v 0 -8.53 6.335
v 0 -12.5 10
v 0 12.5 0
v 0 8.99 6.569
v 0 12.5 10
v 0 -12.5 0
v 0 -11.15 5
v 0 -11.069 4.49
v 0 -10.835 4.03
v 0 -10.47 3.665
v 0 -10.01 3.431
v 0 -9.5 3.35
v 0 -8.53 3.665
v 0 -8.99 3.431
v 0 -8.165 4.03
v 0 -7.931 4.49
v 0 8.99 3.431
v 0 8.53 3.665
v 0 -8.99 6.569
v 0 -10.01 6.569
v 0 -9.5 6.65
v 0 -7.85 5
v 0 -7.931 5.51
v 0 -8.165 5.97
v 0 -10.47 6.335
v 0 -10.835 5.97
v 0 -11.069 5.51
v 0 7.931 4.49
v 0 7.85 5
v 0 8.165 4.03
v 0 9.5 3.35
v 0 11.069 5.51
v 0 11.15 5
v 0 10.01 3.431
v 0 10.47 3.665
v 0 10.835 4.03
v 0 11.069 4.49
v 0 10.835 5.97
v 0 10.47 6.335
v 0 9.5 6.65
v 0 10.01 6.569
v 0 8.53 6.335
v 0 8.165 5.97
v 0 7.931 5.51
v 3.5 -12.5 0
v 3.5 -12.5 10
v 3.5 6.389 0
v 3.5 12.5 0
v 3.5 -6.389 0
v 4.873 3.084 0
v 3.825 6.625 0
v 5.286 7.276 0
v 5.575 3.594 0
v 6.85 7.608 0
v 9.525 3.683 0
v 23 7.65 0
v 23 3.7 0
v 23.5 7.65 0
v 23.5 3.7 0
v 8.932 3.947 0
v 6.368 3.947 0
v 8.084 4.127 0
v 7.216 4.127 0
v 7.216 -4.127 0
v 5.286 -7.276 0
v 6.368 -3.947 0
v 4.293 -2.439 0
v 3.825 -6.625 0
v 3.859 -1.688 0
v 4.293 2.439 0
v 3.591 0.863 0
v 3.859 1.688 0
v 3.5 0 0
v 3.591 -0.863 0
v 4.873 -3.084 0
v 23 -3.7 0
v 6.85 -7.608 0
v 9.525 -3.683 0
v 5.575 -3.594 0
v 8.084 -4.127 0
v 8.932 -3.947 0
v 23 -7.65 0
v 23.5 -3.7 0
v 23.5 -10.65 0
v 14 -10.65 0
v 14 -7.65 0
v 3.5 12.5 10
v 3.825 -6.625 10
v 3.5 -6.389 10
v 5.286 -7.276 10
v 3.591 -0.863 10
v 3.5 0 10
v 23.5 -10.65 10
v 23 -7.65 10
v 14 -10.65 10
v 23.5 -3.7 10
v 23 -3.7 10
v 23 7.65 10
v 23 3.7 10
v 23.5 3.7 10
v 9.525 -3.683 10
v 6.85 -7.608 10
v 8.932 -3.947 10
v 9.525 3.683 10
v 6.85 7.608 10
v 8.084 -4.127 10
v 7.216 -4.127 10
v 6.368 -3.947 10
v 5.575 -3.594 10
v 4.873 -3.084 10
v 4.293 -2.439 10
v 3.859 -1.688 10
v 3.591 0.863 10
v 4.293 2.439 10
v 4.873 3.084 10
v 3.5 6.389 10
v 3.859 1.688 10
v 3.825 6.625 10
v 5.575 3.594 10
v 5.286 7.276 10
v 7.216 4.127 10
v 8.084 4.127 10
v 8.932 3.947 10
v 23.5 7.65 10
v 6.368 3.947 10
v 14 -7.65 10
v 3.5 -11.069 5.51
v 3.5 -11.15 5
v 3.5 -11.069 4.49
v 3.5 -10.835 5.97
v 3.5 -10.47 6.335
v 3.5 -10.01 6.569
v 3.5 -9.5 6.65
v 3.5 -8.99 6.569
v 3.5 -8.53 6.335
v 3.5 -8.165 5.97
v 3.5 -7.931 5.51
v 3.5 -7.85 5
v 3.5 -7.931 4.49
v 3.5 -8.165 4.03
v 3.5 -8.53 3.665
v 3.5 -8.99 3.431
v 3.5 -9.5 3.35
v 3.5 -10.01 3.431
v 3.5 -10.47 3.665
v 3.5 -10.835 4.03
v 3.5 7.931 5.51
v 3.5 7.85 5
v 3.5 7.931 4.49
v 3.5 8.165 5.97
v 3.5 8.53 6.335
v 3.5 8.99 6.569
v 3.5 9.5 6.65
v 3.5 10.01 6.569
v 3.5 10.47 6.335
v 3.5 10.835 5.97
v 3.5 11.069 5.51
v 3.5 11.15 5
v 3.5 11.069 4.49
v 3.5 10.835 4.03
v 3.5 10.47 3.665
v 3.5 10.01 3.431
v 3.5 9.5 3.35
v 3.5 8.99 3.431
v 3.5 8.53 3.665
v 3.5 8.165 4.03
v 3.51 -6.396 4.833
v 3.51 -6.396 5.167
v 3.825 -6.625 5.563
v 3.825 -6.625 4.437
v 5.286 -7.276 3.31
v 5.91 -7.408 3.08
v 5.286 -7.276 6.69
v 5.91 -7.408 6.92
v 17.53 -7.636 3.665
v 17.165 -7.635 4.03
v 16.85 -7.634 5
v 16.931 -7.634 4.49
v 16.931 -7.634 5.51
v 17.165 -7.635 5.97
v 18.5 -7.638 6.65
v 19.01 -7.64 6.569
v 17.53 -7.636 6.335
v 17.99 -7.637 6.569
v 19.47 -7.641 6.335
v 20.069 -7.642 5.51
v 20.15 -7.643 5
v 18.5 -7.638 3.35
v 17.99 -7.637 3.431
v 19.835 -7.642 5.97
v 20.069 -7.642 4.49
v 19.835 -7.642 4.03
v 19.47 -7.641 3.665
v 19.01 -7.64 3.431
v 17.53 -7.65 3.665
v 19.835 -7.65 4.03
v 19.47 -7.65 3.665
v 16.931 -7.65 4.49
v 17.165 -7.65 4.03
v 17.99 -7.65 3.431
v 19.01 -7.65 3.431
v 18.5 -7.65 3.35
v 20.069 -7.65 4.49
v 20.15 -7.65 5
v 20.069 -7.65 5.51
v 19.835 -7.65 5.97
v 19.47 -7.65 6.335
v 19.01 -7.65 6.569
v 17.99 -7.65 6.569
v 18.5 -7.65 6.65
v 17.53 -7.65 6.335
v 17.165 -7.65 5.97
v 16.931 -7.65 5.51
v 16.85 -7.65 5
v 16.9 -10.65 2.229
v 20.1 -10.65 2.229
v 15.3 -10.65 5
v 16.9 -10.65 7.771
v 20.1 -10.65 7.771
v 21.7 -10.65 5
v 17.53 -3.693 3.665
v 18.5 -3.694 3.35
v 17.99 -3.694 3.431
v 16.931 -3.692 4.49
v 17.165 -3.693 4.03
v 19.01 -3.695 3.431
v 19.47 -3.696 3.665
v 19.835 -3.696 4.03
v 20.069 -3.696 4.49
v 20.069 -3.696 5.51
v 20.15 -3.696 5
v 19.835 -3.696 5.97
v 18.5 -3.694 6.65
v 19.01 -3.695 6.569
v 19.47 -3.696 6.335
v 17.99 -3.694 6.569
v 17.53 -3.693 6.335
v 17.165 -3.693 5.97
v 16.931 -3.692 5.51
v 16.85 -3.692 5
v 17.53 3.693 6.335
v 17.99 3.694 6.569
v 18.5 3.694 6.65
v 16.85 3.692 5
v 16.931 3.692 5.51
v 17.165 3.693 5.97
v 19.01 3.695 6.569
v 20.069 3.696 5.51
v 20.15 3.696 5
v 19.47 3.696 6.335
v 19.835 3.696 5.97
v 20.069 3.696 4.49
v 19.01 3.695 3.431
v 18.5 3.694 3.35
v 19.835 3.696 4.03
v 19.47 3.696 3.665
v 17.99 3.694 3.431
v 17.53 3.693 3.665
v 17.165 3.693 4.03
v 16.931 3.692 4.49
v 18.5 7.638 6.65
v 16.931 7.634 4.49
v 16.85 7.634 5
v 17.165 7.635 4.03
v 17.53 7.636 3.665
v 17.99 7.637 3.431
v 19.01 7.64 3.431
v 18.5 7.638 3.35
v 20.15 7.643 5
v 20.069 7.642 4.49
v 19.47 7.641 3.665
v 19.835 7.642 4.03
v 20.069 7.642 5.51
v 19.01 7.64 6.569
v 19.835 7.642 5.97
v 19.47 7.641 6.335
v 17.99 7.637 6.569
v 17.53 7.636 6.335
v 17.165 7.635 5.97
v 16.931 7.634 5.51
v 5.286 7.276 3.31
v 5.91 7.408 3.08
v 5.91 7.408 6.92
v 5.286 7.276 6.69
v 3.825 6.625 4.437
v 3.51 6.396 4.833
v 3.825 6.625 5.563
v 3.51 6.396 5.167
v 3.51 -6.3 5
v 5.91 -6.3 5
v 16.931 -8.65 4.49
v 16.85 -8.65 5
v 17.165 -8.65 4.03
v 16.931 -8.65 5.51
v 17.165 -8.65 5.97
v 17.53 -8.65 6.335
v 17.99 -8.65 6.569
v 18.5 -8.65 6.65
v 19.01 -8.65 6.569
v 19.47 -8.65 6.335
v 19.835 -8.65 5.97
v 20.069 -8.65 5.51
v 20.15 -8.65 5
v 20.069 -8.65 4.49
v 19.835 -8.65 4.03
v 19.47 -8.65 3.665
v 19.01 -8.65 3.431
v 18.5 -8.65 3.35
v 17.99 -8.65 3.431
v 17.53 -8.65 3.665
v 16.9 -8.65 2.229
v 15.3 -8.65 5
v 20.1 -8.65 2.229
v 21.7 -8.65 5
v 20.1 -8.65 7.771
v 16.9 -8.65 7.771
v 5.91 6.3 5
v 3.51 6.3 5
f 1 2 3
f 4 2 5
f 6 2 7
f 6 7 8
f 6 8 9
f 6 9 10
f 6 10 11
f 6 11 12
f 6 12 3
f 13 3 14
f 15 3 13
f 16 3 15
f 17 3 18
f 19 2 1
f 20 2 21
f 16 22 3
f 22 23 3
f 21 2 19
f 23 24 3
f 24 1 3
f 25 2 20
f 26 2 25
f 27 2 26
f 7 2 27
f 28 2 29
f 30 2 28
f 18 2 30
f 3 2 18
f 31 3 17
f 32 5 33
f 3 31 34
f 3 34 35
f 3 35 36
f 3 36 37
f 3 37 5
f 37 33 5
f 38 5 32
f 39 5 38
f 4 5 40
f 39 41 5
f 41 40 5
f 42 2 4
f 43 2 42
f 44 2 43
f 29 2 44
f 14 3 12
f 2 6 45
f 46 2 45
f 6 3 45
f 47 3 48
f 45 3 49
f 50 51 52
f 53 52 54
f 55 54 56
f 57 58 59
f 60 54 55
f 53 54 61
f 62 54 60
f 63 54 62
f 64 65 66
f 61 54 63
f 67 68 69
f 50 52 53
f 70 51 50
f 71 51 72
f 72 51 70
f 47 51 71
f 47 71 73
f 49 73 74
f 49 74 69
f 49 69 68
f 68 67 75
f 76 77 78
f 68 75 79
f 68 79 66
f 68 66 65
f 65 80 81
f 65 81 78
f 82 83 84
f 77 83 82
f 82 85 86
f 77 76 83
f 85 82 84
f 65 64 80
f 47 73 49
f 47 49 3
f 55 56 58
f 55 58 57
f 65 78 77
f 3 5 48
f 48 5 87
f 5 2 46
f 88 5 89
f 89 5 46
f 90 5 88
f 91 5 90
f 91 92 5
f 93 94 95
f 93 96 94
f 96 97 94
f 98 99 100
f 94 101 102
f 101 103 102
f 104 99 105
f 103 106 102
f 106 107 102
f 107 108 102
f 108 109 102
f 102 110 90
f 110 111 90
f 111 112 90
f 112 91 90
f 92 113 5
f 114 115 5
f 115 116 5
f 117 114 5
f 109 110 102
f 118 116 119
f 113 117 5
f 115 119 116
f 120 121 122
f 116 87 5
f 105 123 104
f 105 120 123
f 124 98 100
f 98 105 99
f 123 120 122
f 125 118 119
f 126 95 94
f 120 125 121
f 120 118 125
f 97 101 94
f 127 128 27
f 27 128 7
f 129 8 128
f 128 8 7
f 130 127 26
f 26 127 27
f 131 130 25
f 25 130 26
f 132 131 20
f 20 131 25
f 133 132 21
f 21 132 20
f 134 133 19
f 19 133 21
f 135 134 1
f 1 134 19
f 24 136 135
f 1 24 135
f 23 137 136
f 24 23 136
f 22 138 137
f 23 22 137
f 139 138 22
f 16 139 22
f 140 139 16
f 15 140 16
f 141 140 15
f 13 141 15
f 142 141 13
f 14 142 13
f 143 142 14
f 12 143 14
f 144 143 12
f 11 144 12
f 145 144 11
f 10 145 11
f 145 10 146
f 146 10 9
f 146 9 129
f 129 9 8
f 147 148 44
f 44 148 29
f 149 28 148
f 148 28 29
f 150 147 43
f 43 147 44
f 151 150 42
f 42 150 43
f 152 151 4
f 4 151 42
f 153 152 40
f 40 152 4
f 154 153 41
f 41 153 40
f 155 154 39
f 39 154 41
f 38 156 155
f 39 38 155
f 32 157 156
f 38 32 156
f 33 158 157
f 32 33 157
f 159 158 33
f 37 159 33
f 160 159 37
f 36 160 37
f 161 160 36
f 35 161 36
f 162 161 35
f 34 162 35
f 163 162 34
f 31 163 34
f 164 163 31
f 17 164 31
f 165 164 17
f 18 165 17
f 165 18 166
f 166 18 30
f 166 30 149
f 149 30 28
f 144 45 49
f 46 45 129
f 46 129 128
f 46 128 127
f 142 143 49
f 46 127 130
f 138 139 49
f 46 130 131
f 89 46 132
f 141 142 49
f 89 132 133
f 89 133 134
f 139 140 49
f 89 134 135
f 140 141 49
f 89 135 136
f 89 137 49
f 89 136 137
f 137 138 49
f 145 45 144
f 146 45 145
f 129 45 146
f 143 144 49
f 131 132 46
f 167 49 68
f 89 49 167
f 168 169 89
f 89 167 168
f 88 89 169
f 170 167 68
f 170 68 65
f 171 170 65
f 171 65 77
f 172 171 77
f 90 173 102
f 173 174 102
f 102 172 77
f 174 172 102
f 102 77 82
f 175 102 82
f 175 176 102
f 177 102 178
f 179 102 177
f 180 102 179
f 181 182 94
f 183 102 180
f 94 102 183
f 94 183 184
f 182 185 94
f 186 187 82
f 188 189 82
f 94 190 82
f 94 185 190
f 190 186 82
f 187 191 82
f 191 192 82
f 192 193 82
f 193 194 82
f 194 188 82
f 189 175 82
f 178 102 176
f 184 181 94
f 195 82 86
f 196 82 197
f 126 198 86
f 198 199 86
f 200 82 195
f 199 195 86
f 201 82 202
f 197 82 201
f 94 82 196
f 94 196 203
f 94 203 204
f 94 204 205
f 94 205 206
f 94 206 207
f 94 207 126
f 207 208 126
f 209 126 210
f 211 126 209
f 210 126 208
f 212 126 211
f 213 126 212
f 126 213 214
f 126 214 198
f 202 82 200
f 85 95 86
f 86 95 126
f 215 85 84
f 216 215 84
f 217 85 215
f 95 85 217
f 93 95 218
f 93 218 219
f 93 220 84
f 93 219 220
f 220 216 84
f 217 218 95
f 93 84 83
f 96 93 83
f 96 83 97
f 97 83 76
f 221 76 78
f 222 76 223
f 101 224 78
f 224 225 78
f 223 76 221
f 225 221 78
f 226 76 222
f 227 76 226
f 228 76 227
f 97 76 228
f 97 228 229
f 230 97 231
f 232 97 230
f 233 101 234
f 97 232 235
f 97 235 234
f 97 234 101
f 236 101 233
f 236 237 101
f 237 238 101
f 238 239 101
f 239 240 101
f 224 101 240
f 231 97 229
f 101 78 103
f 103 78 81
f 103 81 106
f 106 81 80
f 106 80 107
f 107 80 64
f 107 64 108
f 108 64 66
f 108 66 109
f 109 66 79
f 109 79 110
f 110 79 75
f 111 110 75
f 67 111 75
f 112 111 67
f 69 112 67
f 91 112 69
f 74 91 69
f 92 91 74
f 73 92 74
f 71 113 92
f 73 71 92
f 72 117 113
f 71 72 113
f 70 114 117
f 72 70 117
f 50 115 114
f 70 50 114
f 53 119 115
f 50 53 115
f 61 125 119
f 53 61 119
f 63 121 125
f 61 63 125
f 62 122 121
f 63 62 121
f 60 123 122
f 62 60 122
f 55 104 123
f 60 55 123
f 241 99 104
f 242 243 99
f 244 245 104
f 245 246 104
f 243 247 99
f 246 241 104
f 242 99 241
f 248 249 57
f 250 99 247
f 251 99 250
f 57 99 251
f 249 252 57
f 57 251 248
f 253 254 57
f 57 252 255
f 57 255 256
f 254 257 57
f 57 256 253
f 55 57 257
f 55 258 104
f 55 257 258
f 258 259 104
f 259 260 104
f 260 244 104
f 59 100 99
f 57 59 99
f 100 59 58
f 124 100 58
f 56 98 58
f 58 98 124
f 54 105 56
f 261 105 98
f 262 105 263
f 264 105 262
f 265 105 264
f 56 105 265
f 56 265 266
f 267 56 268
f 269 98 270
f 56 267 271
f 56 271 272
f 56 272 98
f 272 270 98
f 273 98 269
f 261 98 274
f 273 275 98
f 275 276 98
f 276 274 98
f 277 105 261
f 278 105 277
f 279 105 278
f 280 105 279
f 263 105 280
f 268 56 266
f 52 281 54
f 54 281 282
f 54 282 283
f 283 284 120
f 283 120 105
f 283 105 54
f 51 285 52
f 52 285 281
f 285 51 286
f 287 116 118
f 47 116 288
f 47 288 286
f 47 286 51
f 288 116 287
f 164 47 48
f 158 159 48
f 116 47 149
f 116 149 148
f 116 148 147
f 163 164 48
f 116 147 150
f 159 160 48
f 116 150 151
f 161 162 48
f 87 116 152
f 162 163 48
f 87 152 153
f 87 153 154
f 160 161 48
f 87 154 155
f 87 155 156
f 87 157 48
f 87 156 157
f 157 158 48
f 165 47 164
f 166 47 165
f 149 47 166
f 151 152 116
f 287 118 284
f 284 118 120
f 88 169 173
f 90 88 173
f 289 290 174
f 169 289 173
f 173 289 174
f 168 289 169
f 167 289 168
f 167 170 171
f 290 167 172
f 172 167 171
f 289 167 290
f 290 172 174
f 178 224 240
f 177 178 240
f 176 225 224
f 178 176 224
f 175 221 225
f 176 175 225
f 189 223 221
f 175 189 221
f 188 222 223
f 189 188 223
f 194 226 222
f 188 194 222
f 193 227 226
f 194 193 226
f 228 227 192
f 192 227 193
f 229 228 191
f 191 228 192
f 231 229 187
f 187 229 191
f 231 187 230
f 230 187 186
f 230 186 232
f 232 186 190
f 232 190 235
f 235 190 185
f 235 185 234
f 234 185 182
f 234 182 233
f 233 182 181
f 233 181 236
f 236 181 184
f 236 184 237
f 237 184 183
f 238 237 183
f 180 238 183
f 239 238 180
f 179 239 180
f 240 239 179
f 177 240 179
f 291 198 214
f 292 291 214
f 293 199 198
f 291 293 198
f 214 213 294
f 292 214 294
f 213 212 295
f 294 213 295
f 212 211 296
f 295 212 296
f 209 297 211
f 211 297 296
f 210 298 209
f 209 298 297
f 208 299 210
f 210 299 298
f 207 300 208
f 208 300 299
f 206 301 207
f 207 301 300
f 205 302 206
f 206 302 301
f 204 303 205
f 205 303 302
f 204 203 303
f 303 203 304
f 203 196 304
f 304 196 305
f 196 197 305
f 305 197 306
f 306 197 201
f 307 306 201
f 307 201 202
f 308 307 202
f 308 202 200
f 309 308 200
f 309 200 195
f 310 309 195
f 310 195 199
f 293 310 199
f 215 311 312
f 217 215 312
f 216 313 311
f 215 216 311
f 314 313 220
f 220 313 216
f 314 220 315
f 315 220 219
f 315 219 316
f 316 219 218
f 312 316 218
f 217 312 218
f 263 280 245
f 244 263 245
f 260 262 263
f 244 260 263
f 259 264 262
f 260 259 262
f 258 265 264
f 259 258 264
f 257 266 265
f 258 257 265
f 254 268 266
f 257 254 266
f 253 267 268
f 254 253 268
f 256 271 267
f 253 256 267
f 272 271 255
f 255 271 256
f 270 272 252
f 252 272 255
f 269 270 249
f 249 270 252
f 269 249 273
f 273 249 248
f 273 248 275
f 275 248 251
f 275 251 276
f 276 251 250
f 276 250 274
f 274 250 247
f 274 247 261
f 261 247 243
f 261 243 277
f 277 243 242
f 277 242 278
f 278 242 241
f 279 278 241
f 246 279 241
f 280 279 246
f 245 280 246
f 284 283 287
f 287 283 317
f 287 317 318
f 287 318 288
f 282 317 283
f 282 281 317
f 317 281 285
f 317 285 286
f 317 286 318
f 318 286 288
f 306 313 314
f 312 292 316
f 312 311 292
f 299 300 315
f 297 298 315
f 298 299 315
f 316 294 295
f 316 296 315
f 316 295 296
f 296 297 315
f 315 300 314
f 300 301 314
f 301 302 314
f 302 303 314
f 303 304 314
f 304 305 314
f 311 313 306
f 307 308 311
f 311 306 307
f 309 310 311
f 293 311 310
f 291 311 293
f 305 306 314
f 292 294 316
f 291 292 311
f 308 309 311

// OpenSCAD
include <MCAD/nuts_and_bolts.scad>
gap = 7.4;
difference(){
union(){
translate([0,-25/2])cube([3.5,25,10]);
hull(){
translate([15.3/2,0])cylinder(r=15.3/2,h=10,$fn=30);
translate([23,-15.3/2])cube([.5,15.3,10]);
}
translate([23.5-5.5-2*2,-3-15.3/2])cube([5.5+2*2,3,10]);
}
translate([-0.1,19/2,5])rotate([0,90])#cylinder(r=3.3/2,h=10,$fn=20);
translate([-0.1,-19/2,5])rotate([0,90])#cylinder(r=3.3/2,h=10,$fn=20);

translate([3.51,19/2,5])rotate([0,90])rotate([0,0,90])#nutHole(3);
translate([3.51,-19/2,5])rotate([0,90])rotate([0,0,90])#nutHole(3);
#hull(){
translate([gap/2+3.5,0])cylinder(r=gap/2,h=10,$fn=30);
translate([23,-gap/2])cube([0.5,gap,10]);
}
translate([8.3/2+3.5,0])cylinder(r=8.3/2,h=10,$fn=30);

translate([23.5-5,15,5])rotate([90,0])#cylinder(r=3.3/2,h=30,$fn=20);
translate([23.5-5,-15.3/2-1,5])rotate([90,0])#nutHole(3);

}
